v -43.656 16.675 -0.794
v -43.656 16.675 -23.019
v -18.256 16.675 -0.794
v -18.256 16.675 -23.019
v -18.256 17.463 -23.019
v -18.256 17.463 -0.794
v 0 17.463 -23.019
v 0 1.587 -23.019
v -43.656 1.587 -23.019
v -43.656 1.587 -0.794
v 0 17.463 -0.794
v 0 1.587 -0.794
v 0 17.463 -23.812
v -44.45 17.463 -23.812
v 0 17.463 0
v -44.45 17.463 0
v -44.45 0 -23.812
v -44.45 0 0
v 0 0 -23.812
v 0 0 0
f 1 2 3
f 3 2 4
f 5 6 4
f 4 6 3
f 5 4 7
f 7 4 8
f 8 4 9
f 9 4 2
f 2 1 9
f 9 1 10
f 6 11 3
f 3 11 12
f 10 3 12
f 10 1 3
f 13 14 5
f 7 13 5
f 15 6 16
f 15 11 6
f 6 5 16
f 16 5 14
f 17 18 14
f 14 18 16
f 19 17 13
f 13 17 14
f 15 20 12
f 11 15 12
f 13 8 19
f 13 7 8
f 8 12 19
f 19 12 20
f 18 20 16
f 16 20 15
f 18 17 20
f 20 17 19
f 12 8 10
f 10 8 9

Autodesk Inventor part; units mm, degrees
ref_plane "YZ Plane" through (0, 0, 0) normal (1, 0, 0) x (0, 1, 0)
ref_plane "XZ Plane" through (0, 0, 0) normal (0, 1, 0) x (-1, 0, 0)
ref_plane "XY Plane" through (0, 0, 0) normal (0, 0, 1) x (1, 0, 0)
sketch "Sketch1" plane through (0, 0, 0) normal (0, 1, 0) x (-1, 0, 0)
  line L0 (0, 0) -> (44.45, 0)
  line L1 (44.45, 0) -> (44.45, -23.8125)
  line L2 (44.45, -23.8125) -> (0, -23.8125)
  line L3 (0, -23.8125) -> (0, 0)
  dimension "d0" = 44.45
  dimension "d1" = 23.8125
extrude "Extrusion1" add sketch "Sketch1" along normal blind 1.5875
sketch "Sketch2" plane through (0, 1.5875, 0) normal (0, 1, 0) x (1, 0, 0)
  line L0 (-44.45, 0) -> (0, 0) projected
  line L1 (0, 0) -> (0, 0.7937)
  line L2 (0, 0.7937) -> (-0.7938, 0.7937)
  line L3 (-44.45, 23.8125) -> (-44.45, 0) projected
  line L4 (-44.45, 23.8125) -> (-44.45, 23.0187)
  line L5 (-44.45, 23.0187) -> (-43.6563, 23.0187)
  line L6 (-0.7938, 0.7937) -> (-43.6563, 0.7937)
  line L7 (-43.6563, 0.7937) -> (-43.6563, 23.0187)
  line L8 (-43.6563, 23.0187) -> (-0.7938, 23.0187)
  line L9 (-44.45, 23.8125) -> (0, 23.8125)
  line L10 (0, 0) -> (-44.45, 0)
  line L11 (-44.45, 0) -> (-44.45, 23.8125)
  line L12 (-0.7938, 23.0187) -> (0, 23.0187)
  line L13 (0, 0) -> (0, 23.8125) projected
  line L14 (0, 23.0187) -> (0, 23.8125)
  dimension "d4" = 0.7937
  dimension "d5" = 0.7937
  dimension "d6" = 0.7937
  dimension "d7" = 0.7937
extrude "Extrusion3" add sketch "Sketch2" along normal blind 15.875 contours L3 L5 L7 L6 L2 L1 L0 | L3 L9 L13 L12 L8 L5
sketch "Sketch3" plane through (-43.6563, 1.5875, -0.7937) normal (1, 0, 0) x (0, 0, -1)
  line L0 (0, 15.875) -> (22.225, 15.875) projected
  line L1 (22.225, 15.875) -> (0, 15.875)
  line L2 (0, 15.875) -> (0, 15.0876)
  line L3 (0, 15.0876) -> (22.225, 15.0876)
  line L4 (22.225, 15.0876) -> (22.225, 15.875)
  point P0 (-0.7937, -1.5875)
  dimension "d12" = 0.7874
extrude "Extrusion4" add sketch "Sketch3" along normal blind 25.4
properties part number "RTCcase"
